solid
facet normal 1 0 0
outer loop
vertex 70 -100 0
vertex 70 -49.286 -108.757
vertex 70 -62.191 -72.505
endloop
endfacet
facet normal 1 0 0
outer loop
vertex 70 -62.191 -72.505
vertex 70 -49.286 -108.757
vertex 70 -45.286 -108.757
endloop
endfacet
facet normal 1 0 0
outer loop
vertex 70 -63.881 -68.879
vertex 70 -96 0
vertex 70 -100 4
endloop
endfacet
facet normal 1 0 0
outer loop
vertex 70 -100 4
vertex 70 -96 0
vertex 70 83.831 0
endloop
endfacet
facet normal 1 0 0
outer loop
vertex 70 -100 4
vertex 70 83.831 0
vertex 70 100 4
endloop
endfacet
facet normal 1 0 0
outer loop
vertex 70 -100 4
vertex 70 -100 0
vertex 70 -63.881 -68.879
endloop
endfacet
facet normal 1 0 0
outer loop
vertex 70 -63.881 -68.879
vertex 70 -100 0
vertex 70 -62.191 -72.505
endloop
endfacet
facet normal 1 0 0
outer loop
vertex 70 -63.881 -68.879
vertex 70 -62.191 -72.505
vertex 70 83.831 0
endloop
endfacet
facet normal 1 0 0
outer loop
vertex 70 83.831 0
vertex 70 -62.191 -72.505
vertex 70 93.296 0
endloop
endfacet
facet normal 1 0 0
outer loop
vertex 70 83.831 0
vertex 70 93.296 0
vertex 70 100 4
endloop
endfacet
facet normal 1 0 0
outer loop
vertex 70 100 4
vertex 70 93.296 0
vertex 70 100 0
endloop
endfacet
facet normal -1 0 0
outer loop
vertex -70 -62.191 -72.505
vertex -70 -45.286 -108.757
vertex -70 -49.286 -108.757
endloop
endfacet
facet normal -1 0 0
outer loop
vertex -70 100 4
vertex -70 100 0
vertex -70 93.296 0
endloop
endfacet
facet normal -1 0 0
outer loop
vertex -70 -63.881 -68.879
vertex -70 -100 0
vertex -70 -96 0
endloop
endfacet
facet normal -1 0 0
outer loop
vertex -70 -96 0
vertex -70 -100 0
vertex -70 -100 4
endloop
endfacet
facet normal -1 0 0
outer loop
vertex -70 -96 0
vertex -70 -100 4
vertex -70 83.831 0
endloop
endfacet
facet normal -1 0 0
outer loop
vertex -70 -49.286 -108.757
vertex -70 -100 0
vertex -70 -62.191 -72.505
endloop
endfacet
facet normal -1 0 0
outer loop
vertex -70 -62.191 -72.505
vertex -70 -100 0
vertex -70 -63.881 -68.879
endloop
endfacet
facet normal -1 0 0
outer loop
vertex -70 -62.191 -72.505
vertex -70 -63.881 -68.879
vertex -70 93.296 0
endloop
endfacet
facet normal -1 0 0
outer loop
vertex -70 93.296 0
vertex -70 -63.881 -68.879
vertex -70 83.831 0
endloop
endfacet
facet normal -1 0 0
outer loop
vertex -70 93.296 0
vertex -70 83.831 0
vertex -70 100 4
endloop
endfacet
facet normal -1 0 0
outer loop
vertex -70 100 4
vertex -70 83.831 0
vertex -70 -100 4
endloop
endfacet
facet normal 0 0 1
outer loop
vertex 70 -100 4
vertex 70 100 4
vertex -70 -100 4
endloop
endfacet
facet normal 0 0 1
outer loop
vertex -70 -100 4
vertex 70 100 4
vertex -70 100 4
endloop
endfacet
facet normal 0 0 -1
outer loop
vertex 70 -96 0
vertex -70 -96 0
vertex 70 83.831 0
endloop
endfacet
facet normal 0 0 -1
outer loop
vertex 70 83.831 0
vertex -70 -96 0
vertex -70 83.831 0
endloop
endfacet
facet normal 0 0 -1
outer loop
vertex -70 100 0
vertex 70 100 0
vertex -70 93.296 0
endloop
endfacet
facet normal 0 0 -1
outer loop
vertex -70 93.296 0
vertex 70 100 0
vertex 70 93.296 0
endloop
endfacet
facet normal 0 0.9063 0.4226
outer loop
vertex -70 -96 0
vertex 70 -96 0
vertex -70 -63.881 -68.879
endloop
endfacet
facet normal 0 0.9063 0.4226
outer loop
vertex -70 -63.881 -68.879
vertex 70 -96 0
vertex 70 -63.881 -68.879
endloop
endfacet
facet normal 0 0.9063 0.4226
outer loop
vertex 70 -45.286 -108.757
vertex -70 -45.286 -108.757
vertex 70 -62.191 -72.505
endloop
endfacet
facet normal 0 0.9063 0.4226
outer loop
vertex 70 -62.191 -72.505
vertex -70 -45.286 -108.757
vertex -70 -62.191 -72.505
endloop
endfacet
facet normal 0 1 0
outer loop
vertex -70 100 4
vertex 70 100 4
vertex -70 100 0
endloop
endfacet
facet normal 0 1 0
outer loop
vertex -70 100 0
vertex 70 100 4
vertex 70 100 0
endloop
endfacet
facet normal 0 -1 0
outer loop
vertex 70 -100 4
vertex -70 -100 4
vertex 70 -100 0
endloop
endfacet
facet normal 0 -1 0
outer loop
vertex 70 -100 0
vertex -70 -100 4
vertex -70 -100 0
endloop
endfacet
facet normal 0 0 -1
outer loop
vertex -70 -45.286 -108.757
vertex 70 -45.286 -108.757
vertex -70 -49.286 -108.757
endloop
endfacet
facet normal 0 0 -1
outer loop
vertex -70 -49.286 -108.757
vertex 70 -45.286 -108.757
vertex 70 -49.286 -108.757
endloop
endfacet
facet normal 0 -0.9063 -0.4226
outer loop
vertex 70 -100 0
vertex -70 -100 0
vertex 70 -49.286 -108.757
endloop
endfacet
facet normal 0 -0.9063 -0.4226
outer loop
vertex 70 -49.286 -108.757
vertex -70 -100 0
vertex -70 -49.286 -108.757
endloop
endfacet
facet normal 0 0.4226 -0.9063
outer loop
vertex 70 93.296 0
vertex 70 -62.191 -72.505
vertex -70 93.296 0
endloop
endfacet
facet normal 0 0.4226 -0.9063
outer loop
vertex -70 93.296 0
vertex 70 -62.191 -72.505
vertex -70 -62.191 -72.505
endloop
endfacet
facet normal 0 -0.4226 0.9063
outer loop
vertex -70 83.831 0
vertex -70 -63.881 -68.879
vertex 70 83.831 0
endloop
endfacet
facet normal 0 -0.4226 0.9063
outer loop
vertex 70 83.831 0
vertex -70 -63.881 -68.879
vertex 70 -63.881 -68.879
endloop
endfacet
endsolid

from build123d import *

# Parameters (mm, degrees)
ESBO_O2_W                = 140
ESBO_O2_H                = 200
RESSALTO_EXTRUS_O2_DEPTH = 4
ESBO_O11_W               = 2
ESBO_O11_H               = 4
RESSALTO_EXTRUS_O3_DEPTH = 69
RESSALTO_EXTRUS_O4_DEPTH = 69
ESBO_O14_W               = 140
ESBO_O14_H               = 4
RESSALTO_EXTRUS_O5_DEPTH = 175
ESBO_O17_W               = 140
ESBO_O17_H               = 6
RESSALTO_EXTRUS_O6_DEPTH = 10
ESBO_O18_W               = 140
ESBO_O18_H               = 6
CORTE_EXTRUS_O1_DEPTH    = 10


with BuildPart() as part:
    # Esboço2 → Ressalto-extrusão2 (new body)
    with BuildSketch(Plane.XY):
        Rectangle(ESBO_O2_W, ESBO_O2_H)
    extrude(amount=RESSALTO_EXTRUS_O2_DEPTH)

    # Varredura1: sweep along a curve in space
    with BuildLine() as varredura1_path:
        Line((0, -98, 0), (0, -47.285808591, -108.756934444))
    # Esboço11 → Varredura1 (sweep)
    with BuildSketch(Plane.XY.offset(-108.756934444)):
        with Locations((0, -47.285808591)):
            Rectangle(ESBO_O11_W, ESBO_O11_H)
    sweep(path=varredura1_path.line)

    # Esboço12 → Ressalto-extrusão3 (add)
    with BuildSketch(Plane(origin=(1, 0, 0), x_dir=(0, 0, -1), z_dir=(1, 0, 0))):
        Polygon((108.756934444, -45.285808591), (0, -96), (0, -100), (108.756934444, -49.285808591), align=None)
    extrude(amount=RESSALTO_EXTRUS_O3_DEPTH)

    # Esboço13 → Ressalto-extrusão4 (add)
    with BuildSketch(Plane.ZY.offset(1)):
        Polygon((-108.756934444, -49.285808591), (0, -100), (0, -96), (-108.756934444, -45.285808591), align=None)
    extrude(amount=RESSALTO_EXTRUS_O4_DEPTH)

    # Esboço14 → Ressalto-extrusão5 (add)
    with BuildSketch(Plane(origin=(0, -78.853805265, -36.77013327), x_dir=(1, 0, 0), z_dir=(0, 0.906307787036648, 0.4226182617407039))):
        with Locations((0, 37.428646873)):
            Rectangle(ESBO_O14_W, ESBO_O14_H)
    extrude(amount=RESSALTO_EXTRUS_O5_DEPTH)

    # Esboço17 → Ressalto-extrusão6 (add)
    with BuildSketch(Plane.XY.offset(4)):
        with Locations((0, 93.234832477)):
            Rectangle(ESBO_O17_W, ESBO_O17_H)
    extrude(amount=RESSALTO_EXTRUS_O6_DEPTH)

    # Esboço18 → Corte-extrusão1 (cut)
    with BuildSketch(Plane.XY.offset(14)):
        with Locations((0, 93.234832477)):
            Rectangle(ESBO_O18_W, ESBO_O18_H)
    extrude(amount=-CORTE_EXTRUS_O1_DEPTH, mode=Mode.SUBTRACT)


solid = part.part
